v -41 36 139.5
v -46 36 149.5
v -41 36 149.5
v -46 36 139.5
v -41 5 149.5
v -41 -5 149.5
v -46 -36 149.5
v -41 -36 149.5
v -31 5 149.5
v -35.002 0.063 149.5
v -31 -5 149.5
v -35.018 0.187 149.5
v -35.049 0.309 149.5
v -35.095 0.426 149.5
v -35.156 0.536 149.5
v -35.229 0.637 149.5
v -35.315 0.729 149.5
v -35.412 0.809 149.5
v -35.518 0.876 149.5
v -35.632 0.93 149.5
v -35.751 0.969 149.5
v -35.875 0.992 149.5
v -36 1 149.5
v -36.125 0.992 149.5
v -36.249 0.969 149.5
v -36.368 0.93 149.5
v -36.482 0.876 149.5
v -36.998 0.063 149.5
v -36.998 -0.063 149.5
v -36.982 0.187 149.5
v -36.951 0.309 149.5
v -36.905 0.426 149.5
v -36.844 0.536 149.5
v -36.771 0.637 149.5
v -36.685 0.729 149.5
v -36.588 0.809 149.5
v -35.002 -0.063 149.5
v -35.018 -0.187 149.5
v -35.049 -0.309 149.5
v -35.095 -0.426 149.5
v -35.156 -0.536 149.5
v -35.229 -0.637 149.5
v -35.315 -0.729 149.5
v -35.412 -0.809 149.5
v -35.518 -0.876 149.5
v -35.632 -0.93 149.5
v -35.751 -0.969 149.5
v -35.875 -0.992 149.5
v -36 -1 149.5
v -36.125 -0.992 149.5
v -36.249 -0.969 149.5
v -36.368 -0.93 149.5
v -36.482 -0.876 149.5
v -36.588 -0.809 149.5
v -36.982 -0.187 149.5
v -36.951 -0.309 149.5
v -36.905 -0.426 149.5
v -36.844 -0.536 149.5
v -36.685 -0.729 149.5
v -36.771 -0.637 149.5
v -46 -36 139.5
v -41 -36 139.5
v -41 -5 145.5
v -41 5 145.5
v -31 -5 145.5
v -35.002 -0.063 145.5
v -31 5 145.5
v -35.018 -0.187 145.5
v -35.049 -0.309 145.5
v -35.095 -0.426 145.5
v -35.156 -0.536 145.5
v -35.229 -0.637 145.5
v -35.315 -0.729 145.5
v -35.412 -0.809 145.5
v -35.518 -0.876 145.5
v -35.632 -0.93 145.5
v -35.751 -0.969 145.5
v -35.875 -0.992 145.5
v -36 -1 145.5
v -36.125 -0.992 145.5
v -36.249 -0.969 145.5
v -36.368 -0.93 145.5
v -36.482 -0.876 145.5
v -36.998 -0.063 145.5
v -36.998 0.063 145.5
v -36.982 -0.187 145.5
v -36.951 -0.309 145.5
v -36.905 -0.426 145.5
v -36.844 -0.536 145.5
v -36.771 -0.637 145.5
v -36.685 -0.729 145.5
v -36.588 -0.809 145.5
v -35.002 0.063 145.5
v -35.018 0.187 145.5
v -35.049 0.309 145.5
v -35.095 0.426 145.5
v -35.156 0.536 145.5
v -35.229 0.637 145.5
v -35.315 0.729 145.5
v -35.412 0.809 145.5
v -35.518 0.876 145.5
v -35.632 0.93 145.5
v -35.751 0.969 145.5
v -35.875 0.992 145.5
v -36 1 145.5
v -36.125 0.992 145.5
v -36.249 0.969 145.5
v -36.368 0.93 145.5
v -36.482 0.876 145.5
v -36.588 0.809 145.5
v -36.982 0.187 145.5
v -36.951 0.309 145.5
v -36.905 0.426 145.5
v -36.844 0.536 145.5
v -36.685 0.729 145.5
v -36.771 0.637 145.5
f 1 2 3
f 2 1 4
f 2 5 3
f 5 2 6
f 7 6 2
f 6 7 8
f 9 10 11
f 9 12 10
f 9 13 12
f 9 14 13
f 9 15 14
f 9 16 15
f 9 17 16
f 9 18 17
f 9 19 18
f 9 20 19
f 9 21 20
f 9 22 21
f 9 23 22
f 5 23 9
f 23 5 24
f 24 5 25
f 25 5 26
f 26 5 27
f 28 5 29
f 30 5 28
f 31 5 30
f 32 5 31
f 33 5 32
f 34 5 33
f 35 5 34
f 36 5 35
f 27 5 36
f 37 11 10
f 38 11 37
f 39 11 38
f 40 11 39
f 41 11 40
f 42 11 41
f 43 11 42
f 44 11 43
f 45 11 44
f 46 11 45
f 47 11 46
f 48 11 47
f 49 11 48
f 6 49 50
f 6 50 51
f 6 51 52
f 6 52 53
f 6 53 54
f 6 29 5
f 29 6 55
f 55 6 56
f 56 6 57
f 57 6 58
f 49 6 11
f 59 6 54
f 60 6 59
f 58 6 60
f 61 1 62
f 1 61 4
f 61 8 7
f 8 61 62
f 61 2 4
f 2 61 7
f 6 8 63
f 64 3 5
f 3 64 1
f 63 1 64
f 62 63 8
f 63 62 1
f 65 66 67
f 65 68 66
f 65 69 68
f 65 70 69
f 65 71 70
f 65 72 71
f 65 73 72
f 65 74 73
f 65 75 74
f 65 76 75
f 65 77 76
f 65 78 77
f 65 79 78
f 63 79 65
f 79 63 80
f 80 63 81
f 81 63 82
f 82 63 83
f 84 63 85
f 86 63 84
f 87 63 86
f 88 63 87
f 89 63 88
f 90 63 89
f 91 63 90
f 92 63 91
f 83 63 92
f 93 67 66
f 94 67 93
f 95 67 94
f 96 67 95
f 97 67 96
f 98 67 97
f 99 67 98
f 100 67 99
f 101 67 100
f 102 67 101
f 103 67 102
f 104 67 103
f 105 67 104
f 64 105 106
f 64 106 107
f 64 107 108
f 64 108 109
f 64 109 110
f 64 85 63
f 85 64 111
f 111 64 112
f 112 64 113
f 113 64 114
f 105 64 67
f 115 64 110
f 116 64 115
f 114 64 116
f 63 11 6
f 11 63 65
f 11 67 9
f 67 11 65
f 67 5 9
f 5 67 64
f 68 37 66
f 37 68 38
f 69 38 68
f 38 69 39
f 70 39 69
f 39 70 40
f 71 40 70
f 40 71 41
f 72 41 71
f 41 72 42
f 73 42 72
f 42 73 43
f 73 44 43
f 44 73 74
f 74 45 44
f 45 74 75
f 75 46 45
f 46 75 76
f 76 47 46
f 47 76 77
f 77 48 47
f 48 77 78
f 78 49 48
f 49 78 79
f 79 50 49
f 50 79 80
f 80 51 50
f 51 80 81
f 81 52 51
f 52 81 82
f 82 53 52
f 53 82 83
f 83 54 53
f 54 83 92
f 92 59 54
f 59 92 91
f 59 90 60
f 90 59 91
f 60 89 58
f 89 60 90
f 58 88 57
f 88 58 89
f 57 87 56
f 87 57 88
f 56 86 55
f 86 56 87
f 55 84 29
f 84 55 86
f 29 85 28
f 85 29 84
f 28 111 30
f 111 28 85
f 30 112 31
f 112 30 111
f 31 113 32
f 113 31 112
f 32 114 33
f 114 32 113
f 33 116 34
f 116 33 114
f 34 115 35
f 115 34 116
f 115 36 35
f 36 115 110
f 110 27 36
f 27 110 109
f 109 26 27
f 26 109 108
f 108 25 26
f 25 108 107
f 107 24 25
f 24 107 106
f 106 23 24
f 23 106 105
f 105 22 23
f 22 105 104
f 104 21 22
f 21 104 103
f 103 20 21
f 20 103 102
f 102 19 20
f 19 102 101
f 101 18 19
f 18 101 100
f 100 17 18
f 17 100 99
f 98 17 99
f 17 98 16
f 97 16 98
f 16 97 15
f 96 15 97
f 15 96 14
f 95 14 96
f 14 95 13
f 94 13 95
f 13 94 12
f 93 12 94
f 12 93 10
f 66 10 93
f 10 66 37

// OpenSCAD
// file: local_modules/lcd.scad
LCD_X=76;
LCD_Y=1.5;
LCD_Z=138;
LCD_DISP_X=LCD_X - 1.5 * 2;
LCD_DISP_Z_OFFSET_FROM_BOTTOM=6;
LCD_DISP_Z=LCD_Z-LCD_DISP_Z_OFFSET_FROM_BOTTOM - 1.5;

module lcd(margin=0, draw_display_region=false) {
  translate([0, 0, LCD_Z/2]){
    cube(size=[LCD_X+margin, LCD_Y+margin, LCD_Z+margin], center=true);

    if(draw_display_region){
      translate([0, 0, -(LCD_Z - LCD_DISP_Z)/2 + LCD_DISP_Z_OFFSET_FROM_BOTTOM]) 
      color("green", 0.5)
      cube(size=[LCD_DISP_X, LCD_Y, LCD_DISP_Z], center=true);
    }
  }
}
// file: scad-utils/morphology.scad
// Copyright (c) 2013 Oskar Linde. All rights reserved.
// License: BSD
//
// This library contains basic 2D morphology operations
//
// outset(d=1)            - creates a polygon at an offset d outside a 2D shape
// inset(d=1)             - creates a polygon at an offset d inside a 2D shape
// fillet(r=1)            - adds fillets of radius r to all concave corners of a 2D shape
// rounding(r=1)          - adds rounding to all convex corners of a 2D shape
// shell(d,center=false)  - makes a shell of width d along the edge of a 2D shape
//                        - positive values of d places the shell on the outside
//                        - negative values of d places the shell on the inside
//                        - center=true and positive d places the shell centered on the edge

module outset(d=1) {
	// Bug workaround for older OpenSCAD versions
	if (version_num() < 20130424) render() outset_extruded(d) children();
	else minkowski() {
		circle(r=d);
		children();
	}
}

module outset_extruded(d=1) {
   projection(cut=true) minkowski() {
        cylinder(r=d);
        linear_extrude(center=true) children();
   }
}

module inset(d=1) {
	 render() inverse() outset(d=d) inverse() children();
}

module fillet(r=1) {
	inset(d=r) render() outset(d=r) children();
}

module rounding(r=1) {
	outset(d=r) inset(d=r) children();
}

module shell(d,center=false) {
	if (center && d > 0) {
		difference() {
			outset(d=d/2) children();
			inset(d=d/2) children();
		}
	}
	if (!center && d > 0) {
		difference() {
			outset(d=d) children();
			children();
		}
	}
	if (!center && d < 0) {
		difference() {
			children();
			inset(d=-d) children();
		}
	}
	if (d == 0) children();
}


// Below are for internal use only

module inverse() {
	difference() {
		square(1e5,center=true);
		children();
	}
}


// TEST CODE

use <mirror.scad>

module arrow(l=1,w=.6,t=0.15) {
	mirror_y() polygon([[0,0],[l,0],[l-w/2,w/2],[l-w/2-sqrt(2)*t,w/2],[l-t/2-sqrt(2)*t,t/2],[0,t/2]]);
}

module shape() {
	polygon([[0,0],[1,0],[1.5,1],[2.5,1],[2,-1],[0,-1]]);
}

if(0) assign($fn=32) {

	for (p = [0:10*3-1]) assign(o=floor(p/3)) {
		translate([(p%3)*2.5,-o*3]) {
			//%if (p % 3 == 1) translate([0,0,1]) shape();
			if (p % 3 == 0) shape();
			if (p % 3 == 1) translate([0.6,0]) arrow();
			if (p % 3 == 2) {
				if (o == 0) inset(d=0.3) shape();
				if (o == 1) outset(d=0.3) shape();
				if (o == 2) rounding(r=0.3) shape();
				if (o == 3) fillet(r=0.3) shape();
				if (o == 4) shell(d=0.3) shape();
				if (o == 5) shell(d=-0.3) shape();
				if (o == 6) shell(d=0.3,center=true) shape();
				if (o == 7) rounding(r=0.3) fillet(r=0.3) shape();
				if (o == 8) shell(d=0.3,center=true) fillet(r=0.3) rounding(r=0.3) shape();
				if (o == 9) shell(d=-0.3) fillet(r=0.3) rounding(r=0.3) shape();
			}
		}
	}
}
// file: scad-utils/mirror.scad
// Copyright (c) 2013 Oskar Linde. All rights reserved.
// License: BSD
//
// This library contains simple mirroring functions
//
// mirror_x()
// mirror_y()
// mirror_z()


module mirror_x() {
  union() {
    child();
    scale([-1,1,1]) child();
  }
}

module mirror_y() {
  union() {
    child();
    scale([1,-1,1]) child();
  }
}

module mirror_z() {
  union() {
    child();
    scale([1,1,-1]) child();
  }
}
// file: _kagedourou_side_frame.scad
include <./_kagedourou_top.scad>

KD_SIDE_FRAME_Z=155;

module kagedourou_side_frame() {
  translate([KD_TOP_X/2 - KD_FRAME_T/2, KD_TOP_Y/2 - KD_FRAME_T/2, KD_FRAME_T]) 
  linear_extrude(height=KD_SIDE_FRAME_Z, center=!true, convexity=10, twist=0)
  difference(){
    square(size=[KD_FRAME_T, KD_FRAME_T], center=true);

    // inner space
    rotate([0, 0, 180])
    square(size=[KD_FRAME_INNER_T, KD_FRAME_INNER_T], center=!true);
  }
}
// file: _kagedourou_bottom_frame_b.scad
include <./_kagedourou_top.scad>

$fn=50;

KD_BOTTOM_FRAME_ZPOS=KD_FRAME_T + LCD_DISP_Z - LCD_DISP_Z_OFFSET_FROM_BOTTOM + KD_FRAME_T;

module kagedourou_bottom_frame_b() {
  // align base XY-plane to the bottom edge of LCD's visible area
  translate([0, 0, KD_BOTTOM_FRAME_ZPOS]){
    // %color("red", 0.05) square(size=[100, 100], center=true);

    rotate([0, 0, 90]) 
    translate([0, KD_TOP_Y/2 - KD_FRAME_INNER_T/2, 0]) {
      cube(size=[KD_TOP_X - KD_FRAME_T*2, KD_FRAME_INNER_T, KD_FRAME_T], center=true);

      // tab for bottom panel
      TAB_H=10;
      TAB_W=10;
      TAB_Z=4;

      translate([0, 0, KD_FRAME_T/2 - TAB_Z]) 
      linear_extrude(height=TAB_Z, center=!true, convexity=10, twist=0)
      translate([0, -KD_FRAME_INNER_T/2 - TAB_H/2, 0])
      difference() {
        square(size=[10, TAB_H], center=true);

        // screw hole
        circle(d=2);      
      }
    }
  }
}
// file: _kagedourou_top.scad
include <scad-utils/mirror.scad>
include <scad-utils/morphology.scad>

include <./local_modules/lcd.scad>


module lcd_for_top(){
  translate([0, KD_TOP_Y/2 - LCD_Y/2 - (KD_FRAME_INNER_T + 0.5), LCD_Z + KD_FRAME_T - 2]) 
  rotate([180, 0, 0]) 
  lcd(draw_display_region=true);
}

KD_FRAME_T=10;
KD_FRAME_INNER_T=5;

KD_TOP_X=LCD_X-2*2+KD_FRAME_T*2;
KD_TOP_Y=KD_TOP_X;
echo(str("KD_TOP_X=", KD_TOP_X));
echo(str("KD_TOP_Y=", KD_TOP_Y));

KD_TOP_DISP_HOLDER_X=10;
KD_TOP_DISP_HOLDER_Y=4*2;

module kagedourou_top_display_holder(args) {
  translate([0, KD_TOP_Y/2 - KD_FRAME_INNER_T, 0]){
    difference() {

      linear_extrude(height=KD_FRAME_T, center=!true, convexity=10, twist=0)
      square(size=[KD_TOP_DISP_HOLDER_X, KD_TOP_DISP_HOLDER_Y], center=true);

      translate([0, 0, KD_FRAME_T - 2]) 
      linear_extrude(height=KD_FRAME_T, center=!true, convexity=10, twist=0)
      square(size=[KD_TOP_DISP_HOLDER_X, (LCD_Y + 1) * 2], center=true);
    }

  }
}

module kagedourou_top() {
  difference() {
    linear_extrude(height=KD_FRAME_T, center=!true, convexity=10, twist=0)
    difference(){
      square(size=[KD_TOP_X, KD_TOP_Y], center=true);

      // top window
      offset(delta=-KD_FRAME_T)
      square(size=[KD_TOP_X, KD_TOP_Y], center=true);
    }

    translate([0, 0, 5]) 
    linear_extrude(height=KD_FRAME_T, center=!true, convexity=10, twist=0)
    offset(delta=(KD_FRAME_T - KD_FRAME_INNER_T))
    offset(delta=-KD_FRAME_T)
    square(size=[KD_TOP_X, KD_TOP_Y], center=true);
  }

  kagedourou_top_display_holder();
}

// kagedourou_top();
// main file
include <./_kagedourou_top.scad>
include <./_kagedourou_bottom_frame_b.scad>
include <./_kagedourou_side_frame.scad>

$fn=50;

%
lcd_for_top();
%
kagedourou_top();
%
kagedourou_side_frame();

kagedourou_bottom_frame_b();
